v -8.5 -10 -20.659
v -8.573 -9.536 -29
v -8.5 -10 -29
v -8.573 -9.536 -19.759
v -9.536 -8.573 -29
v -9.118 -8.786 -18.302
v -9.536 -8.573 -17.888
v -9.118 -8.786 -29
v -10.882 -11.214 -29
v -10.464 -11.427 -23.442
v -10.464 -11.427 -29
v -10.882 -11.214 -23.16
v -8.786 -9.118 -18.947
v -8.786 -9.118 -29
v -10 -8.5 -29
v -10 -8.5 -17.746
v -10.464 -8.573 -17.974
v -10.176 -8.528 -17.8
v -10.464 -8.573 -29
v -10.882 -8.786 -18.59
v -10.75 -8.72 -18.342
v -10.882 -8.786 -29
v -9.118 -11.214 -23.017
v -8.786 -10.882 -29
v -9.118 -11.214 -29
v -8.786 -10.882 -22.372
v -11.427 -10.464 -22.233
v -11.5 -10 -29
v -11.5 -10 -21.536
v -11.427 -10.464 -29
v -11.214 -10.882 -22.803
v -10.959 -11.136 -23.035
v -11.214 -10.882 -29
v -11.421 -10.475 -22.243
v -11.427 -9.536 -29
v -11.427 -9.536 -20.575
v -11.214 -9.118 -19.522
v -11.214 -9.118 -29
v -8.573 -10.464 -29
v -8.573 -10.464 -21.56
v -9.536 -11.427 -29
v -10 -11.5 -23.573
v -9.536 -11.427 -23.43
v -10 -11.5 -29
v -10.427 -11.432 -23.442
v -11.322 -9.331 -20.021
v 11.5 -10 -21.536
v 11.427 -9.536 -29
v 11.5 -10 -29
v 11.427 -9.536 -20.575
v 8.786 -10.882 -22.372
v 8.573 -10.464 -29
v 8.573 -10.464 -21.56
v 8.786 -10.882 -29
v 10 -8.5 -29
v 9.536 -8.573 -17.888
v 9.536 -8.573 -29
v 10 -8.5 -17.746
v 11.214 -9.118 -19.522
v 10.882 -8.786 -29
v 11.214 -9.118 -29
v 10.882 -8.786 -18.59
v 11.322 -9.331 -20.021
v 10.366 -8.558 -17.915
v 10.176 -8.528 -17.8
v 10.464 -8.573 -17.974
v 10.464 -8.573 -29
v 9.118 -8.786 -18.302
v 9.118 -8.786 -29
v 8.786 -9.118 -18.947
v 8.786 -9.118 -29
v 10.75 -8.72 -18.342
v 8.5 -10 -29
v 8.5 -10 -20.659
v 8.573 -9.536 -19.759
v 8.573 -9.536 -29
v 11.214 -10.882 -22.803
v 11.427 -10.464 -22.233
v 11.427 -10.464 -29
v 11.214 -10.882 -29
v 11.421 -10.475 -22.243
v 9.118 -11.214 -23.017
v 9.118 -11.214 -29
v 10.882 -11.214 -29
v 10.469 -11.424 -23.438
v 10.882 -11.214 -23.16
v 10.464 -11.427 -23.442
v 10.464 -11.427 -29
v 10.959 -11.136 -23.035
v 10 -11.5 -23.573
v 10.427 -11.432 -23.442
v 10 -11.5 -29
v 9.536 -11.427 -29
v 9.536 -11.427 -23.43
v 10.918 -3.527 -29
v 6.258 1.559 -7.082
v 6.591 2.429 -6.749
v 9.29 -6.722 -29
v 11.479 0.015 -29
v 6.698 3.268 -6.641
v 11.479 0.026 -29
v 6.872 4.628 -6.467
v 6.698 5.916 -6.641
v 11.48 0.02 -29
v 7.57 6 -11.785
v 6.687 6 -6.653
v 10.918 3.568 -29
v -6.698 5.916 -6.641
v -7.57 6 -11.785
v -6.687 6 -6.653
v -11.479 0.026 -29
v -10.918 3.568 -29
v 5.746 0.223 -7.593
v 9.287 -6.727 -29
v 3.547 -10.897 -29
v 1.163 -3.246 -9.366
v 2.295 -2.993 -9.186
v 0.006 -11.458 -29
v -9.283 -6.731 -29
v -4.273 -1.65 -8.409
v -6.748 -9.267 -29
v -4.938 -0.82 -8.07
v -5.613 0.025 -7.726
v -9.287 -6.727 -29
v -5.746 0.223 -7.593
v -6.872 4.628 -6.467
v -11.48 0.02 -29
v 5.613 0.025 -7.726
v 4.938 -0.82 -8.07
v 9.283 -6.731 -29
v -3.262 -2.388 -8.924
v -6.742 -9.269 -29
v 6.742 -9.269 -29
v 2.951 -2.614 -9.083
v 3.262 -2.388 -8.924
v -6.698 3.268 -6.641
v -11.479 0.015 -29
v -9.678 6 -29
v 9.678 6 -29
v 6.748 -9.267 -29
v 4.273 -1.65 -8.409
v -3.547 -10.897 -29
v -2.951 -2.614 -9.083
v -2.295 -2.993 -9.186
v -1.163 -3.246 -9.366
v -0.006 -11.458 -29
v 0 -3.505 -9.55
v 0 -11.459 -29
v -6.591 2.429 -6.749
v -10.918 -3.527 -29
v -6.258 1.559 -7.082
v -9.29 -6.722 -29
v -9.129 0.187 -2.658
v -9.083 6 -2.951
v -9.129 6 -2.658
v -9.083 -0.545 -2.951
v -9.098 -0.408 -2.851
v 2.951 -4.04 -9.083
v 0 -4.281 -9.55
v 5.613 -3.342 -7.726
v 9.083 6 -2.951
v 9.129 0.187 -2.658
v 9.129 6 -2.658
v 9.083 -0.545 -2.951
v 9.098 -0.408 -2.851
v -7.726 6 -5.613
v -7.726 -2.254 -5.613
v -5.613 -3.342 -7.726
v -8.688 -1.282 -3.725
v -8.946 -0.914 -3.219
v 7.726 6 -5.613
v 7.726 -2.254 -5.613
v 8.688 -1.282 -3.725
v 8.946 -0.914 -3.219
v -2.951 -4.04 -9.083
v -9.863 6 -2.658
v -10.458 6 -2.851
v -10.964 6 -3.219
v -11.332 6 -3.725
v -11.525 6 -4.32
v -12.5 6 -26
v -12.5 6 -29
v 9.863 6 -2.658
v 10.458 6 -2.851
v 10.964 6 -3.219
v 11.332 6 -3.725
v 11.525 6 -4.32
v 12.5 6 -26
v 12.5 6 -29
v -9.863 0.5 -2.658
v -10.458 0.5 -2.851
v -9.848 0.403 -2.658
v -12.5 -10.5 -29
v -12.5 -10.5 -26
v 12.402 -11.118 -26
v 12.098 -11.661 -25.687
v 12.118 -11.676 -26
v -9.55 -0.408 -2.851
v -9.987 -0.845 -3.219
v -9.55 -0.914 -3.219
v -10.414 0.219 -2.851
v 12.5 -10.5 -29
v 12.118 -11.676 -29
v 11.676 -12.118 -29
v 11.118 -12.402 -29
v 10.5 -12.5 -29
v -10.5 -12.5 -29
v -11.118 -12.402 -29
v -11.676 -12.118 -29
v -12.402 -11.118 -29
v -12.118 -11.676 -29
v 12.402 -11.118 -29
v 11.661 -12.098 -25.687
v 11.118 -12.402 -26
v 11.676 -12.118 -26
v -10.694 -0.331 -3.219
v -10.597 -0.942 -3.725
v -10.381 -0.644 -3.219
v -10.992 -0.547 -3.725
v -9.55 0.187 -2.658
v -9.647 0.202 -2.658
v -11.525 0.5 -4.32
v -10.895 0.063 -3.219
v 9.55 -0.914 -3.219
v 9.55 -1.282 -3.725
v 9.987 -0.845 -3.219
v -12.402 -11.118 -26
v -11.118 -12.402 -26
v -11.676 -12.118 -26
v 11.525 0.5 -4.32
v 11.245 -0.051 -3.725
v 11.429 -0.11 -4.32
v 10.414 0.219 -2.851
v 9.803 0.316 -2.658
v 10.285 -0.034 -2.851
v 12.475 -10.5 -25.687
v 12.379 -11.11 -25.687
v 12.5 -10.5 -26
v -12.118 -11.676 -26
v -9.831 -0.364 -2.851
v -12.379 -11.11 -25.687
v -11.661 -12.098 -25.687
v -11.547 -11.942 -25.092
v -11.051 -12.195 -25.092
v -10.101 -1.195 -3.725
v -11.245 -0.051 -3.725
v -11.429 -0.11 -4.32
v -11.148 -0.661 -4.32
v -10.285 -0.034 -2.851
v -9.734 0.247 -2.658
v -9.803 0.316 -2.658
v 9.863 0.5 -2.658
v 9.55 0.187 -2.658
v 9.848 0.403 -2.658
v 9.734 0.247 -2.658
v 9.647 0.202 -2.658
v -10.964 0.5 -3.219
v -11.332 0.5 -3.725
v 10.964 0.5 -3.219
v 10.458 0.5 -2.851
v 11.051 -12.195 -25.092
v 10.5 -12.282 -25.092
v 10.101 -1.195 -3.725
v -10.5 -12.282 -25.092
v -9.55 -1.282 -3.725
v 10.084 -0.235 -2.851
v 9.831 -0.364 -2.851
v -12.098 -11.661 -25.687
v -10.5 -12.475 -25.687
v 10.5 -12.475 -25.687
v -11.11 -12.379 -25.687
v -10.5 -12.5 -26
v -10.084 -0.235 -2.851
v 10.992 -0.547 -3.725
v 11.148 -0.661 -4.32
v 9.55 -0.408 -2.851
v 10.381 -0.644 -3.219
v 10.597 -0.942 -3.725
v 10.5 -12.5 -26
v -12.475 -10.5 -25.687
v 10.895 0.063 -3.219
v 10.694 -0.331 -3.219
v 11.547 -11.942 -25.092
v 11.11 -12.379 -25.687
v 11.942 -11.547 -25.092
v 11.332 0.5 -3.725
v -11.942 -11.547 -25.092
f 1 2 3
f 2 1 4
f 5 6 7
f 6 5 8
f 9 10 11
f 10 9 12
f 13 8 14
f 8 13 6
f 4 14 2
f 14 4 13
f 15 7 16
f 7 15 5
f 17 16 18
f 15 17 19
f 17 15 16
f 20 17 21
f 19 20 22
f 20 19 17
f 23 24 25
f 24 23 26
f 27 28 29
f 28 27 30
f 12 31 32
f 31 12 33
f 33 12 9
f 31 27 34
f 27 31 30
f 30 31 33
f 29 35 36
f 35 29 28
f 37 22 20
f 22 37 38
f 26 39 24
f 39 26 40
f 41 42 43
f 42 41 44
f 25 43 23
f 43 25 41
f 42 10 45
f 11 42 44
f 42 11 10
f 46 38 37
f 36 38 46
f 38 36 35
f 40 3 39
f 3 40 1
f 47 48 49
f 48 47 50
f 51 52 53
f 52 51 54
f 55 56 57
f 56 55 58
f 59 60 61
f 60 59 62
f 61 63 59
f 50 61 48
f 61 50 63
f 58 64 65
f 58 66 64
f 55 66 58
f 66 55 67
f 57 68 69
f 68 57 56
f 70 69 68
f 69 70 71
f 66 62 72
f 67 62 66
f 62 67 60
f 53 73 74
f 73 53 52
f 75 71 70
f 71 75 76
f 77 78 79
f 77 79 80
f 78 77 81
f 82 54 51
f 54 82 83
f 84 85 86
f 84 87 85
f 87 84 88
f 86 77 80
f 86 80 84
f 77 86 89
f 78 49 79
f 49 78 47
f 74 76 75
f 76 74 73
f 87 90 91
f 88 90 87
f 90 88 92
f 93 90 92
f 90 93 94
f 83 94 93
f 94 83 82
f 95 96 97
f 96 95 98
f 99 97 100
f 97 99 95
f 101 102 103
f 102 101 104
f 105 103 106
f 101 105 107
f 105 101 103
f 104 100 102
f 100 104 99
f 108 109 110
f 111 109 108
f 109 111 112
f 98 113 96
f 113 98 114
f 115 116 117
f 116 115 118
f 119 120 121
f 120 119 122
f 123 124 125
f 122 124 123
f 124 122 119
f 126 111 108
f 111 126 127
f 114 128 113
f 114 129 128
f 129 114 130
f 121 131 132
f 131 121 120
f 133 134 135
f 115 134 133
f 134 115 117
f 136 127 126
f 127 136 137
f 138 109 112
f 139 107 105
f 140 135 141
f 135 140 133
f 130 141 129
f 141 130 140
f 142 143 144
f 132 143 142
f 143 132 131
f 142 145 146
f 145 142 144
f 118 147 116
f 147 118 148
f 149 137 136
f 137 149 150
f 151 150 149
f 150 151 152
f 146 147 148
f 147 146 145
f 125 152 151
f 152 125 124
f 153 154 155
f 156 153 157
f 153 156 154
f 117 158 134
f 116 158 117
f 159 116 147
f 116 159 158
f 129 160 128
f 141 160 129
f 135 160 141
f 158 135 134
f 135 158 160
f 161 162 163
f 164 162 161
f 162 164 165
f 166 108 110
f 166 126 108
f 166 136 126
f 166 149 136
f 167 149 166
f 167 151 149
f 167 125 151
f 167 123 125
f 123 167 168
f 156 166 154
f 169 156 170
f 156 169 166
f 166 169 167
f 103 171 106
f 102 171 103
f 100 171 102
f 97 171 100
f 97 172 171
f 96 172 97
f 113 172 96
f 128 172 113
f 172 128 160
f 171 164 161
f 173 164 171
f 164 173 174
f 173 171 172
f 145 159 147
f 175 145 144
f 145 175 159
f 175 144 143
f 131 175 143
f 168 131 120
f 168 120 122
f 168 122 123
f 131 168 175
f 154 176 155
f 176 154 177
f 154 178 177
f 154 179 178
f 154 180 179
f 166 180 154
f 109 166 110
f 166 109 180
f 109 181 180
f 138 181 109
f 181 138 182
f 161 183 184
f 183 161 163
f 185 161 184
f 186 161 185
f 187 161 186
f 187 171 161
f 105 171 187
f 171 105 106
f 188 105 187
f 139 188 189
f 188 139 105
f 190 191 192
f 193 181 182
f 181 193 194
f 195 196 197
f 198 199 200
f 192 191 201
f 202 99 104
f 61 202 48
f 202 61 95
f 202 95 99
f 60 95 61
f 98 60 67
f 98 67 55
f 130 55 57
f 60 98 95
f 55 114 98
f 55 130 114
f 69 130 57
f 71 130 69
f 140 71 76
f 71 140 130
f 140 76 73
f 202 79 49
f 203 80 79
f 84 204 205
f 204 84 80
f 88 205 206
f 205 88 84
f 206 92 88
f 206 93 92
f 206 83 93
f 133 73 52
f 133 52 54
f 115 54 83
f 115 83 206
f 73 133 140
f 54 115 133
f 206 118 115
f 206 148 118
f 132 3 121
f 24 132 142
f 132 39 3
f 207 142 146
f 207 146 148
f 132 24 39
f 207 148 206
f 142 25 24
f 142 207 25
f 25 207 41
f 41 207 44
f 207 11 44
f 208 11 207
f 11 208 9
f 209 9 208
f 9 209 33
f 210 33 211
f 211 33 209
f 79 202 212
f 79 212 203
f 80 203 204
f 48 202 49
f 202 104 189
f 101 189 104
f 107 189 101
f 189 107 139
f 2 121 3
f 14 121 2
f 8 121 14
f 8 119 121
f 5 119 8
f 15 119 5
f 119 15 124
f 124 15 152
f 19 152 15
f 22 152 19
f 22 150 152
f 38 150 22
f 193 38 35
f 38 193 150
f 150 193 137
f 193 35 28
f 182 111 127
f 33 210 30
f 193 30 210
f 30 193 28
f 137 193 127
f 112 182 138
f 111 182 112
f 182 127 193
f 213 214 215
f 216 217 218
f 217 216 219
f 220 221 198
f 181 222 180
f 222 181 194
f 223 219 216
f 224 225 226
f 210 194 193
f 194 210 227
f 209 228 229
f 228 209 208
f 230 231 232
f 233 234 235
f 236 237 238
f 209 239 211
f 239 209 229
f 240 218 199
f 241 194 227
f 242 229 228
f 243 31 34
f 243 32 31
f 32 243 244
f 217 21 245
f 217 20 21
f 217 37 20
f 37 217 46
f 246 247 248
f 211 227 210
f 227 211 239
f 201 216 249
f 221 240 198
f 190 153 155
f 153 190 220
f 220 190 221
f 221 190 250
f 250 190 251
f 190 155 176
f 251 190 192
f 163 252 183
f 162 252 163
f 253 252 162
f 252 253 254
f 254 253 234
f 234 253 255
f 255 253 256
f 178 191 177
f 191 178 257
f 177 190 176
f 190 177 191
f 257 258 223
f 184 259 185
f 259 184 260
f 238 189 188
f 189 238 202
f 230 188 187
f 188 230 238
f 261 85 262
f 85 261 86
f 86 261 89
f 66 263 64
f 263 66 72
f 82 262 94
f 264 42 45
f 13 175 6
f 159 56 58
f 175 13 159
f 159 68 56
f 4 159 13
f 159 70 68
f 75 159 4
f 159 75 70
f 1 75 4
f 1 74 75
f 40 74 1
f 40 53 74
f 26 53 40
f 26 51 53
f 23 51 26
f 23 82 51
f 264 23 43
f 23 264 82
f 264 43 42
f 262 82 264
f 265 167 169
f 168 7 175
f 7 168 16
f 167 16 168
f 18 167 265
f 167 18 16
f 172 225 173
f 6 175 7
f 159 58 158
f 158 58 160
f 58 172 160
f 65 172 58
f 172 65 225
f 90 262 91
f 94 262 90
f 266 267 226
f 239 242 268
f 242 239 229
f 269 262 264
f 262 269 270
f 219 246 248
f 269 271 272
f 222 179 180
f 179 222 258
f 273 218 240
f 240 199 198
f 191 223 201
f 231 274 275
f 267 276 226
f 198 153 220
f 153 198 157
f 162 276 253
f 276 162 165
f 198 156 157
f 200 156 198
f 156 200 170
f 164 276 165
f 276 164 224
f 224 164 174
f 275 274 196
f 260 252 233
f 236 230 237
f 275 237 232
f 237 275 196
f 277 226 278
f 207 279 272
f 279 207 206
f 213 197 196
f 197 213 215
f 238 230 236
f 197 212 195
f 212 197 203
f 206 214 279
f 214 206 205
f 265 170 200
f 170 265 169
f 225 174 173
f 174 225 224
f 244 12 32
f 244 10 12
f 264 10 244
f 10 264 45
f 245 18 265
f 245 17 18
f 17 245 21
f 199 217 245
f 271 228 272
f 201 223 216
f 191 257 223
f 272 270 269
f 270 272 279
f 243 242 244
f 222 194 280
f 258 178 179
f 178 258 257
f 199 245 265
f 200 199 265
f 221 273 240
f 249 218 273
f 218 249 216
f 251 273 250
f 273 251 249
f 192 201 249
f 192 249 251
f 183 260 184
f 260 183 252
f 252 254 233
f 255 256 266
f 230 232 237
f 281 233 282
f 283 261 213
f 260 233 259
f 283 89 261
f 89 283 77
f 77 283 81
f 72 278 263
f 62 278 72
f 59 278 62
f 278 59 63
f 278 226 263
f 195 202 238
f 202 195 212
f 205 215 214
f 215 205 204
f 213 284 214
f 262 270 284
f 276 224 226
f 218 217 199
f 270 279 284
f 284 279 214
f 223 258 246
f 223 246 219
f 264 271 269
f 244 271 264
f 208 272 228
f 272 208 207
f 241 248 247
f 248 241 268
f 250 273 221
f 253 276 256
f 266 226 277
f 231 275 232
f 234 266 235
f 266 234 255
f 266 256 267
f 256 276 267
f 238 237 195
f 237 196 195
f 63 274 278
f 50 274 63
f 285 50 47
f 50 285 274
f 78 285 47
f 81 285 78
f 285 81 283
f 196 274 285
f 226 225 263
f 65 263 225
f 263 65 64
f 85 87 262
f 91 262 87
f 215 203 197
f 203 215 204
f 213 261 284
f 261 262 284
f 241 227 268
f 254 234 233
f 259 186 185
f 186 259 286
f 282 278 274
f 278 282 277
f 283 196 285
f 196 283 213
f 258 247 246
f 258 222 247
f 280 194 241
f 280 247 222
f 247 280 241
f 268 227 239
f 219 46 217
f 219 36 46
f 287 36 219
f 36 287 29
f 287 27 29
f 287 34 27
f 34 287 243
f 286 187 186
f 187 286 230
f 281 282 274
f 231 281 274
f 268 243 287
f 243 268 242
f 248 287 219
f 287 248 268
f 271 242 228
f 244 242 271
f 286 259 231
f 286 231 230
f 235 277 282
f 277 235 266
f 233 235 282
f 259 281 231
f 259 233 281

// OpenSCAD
// Customizable Mini Hotend Fan Duct (Makerfarm i3-i3v compatible)
// The default measurements are configured for J-Head MkV
//
// All dimensions are in mm.

// Number of segments per circle. Effects both OpenSCAD display and generated
// STL. Reduce during debugging for faster compilation.
$fn = 20;

// Fan measurements
fan_size = 25; // You can go for a bigger fan here if you want (manually set screw spacing for fans larger than 50mm).
fan_distance_from_hotend = 26; // Increase this if you think the fan is too close to the heating block.
fan_screw_spacing = fan_size*0.8; // This formula is fine for fan sizes up to 50mm, set manually for bigger ones.
screw_diameter = 3; // Increase if screws are too tight.
top_screw_depth = 9; // These screw holes stay hidden. Increase if you have really long screws.
bottom_screw_depth = 20; // These screw holes will most likely go all the way through, lower if you want them to stay hidden.

// Hotend measurements//
hotend_diameter = 19.1; // Works well with at least J-Head MkIV & MkV. Lower if it is too loose on your hotend, and increase if it is too tight.

// Air duct sizes
hotend_duct_size = hotend_diameter-8; // The duct size at the hotend. If the heat sink is small, set this to a value lower than the hotend diameter.
fan_duct_size = fan_size -2 ; // The duct size on the fan end. The default one should be fine.

// Other
corner_radius = 2; // Lower to get sharper corners/edges.
hotend_grip_extra_width = 2; // Increase this to make the mount less prone to breaking.
fan_mount_thickness = 3; // Only increase if you want the mount to get beefier.
distance_behind_hotend = (hotend_diameter/3) -9; // This should be fine, but increase if you want tighter grip on hotend.

height_behind_hotend = 14; // If the plastic is too close to the heating block, lower this.

module fan_mount() {
	translate([-(fan_size/2 - corner_radius),
				  -(fan_size/2 - corner_radius),
				  0]) {
		if (corner_radius > 0) {
			hull() {
				cylinder(r=corner_radius, h=fan_mount_thickness);
				translate([fan_size-2*corner_radius, 0, 0]) {
					cylinder(r=corner_radius, h=fan_mount_thickness);
				}
				translate([0, fan_size - 2*corner_radius, 0]) {
					cylinder(r=corner_radius, h=fan_mount_thickness);
				}
				translate([fan_size - 2*corner_radius, fan_size - 2*corner_radius, 0]) {
					cylinder(r=corner_radius, h=fan_mount_thickness);
				}
			}
		} else {
			cube(size = [fan_size, fan_size, fan_mount_thickness]);
		}
	}
}

module body() {
	hull() {
		// Fan mount
		translate([0, 0, -(fan_distance_from_hotend + fan_mount_thickness)]) {
			fan_mount();
		}
		
		// Rounded corners connecting to fan mount 
		translate([-(fan_size/2 - corner_radius), 
					  -(fan_size/2 - corner_radius), 
					  -(fan_distance_from_hotend)]) {
			if (corner_radius > 0) {
				sphere(r = corner_radius);
				translate([fan_size - 2*corner_radius, 0, 0]) {
					sphere(r = corner_radius);
				}
				translate([0, fan_size - 2*corner_radius, 0]) {
					sphere(r = corner_radius);
				}
				translate([fan_size - 2*corner_radius, fan_size - 2*corner_radius, 0]) {
					sphere(r = corner_radius);
				}
			} else {
				translate([0,0,-1]) {
					cube(size = [fan_size, fan_size, 1]);
				}
			}
		}
		
		// Corners behind hotend
		translate([-(hotend_diameter/2 - corner_radius + hotend_grip_extra_width),
					  fan_size/2 - max(height_behind_hotend - 2*corner_radius, 0) - corner_radius,
					  distance_behind_hotend - corner_radius]) {
			if (corner_radius > 0) {
				sphere(r = corner_radius);
				translate([hotend_diameter - 2*(corner_radius - hotend_grip_extra_width), 0, 0]) {
					sphere(r = corner_radius);
				}
				translate([0, 
							  max(height_behind_hotend - 2*corner_radius, 0), 
							  0]) {
					sphere(r = corner_radius);
				}
				translate([hotend_diameter - 2*(corner_radius - hotend_grip_extra_width), 
							  max(height_behind_hotend - 2*corner_radius, 0), 
							  0]) {
					sphere(r = corner_radius);
				}
			} else {
				translate([0,0,-6]) {
					cube(size = [hotend_diameter + 2*hotend_grip_extra_width, 
									 height_behind_hotend, 
									 6]);
				}
			}
		}
	}
}

difference() {
	union() {
		body();

	}
	union() {
		// Air duct
		translate([0,
					  fan_duct_size/2, 
					  -(fan_distance_from_hotend + fan_mount_thickness + 0.1)]) {
			linear_extrude(height = fan_distance_from_hotend + fan_mount_thickness + 0.1, 
								scale = hotend_duct_size/fan_duct_size) {
				translate([0, -fan_duct_size/2]) {
					circle(d = fan_duct_size);
				}
			}
		}
		
		// Screw holes
		translate([-(fan_screw_spacing/2),
					  -(fan_screw_spacing/2),
					  -(fan_distance_from_hotend + fan_mount_thickness + 0.1)]) {
			cylinder(d = screw_diameter, h = bottom_screw_depth);
			translate([fan_screw_spacing, 0, 0]) {
				cylinder(d = screw_diameter, h = bottom_screw_depth);
			}
			translate([0, fan_screw_spacing, 0]) {
				cylinder(d = screw_diameter, h = top_screw_depth);
			}
			translate([fan_screw_spacing, fan_screw_spacing, 0]) {
				cylinder(d = screw_diameter, h = top_screw_depth);
			}
		}
		
		// Hotend mount
		translate([0, fan_size*0.75, 0]) {
			rotate(a=90, v=[1,0,0]) {
				cylinder(d=hotend_diameter, h=fan_size*1.5);
			}
		}
        
     // removing btop half
        translate([-13,6,-35])
        cube([26,12.5,50]);
	}
    
       
}
